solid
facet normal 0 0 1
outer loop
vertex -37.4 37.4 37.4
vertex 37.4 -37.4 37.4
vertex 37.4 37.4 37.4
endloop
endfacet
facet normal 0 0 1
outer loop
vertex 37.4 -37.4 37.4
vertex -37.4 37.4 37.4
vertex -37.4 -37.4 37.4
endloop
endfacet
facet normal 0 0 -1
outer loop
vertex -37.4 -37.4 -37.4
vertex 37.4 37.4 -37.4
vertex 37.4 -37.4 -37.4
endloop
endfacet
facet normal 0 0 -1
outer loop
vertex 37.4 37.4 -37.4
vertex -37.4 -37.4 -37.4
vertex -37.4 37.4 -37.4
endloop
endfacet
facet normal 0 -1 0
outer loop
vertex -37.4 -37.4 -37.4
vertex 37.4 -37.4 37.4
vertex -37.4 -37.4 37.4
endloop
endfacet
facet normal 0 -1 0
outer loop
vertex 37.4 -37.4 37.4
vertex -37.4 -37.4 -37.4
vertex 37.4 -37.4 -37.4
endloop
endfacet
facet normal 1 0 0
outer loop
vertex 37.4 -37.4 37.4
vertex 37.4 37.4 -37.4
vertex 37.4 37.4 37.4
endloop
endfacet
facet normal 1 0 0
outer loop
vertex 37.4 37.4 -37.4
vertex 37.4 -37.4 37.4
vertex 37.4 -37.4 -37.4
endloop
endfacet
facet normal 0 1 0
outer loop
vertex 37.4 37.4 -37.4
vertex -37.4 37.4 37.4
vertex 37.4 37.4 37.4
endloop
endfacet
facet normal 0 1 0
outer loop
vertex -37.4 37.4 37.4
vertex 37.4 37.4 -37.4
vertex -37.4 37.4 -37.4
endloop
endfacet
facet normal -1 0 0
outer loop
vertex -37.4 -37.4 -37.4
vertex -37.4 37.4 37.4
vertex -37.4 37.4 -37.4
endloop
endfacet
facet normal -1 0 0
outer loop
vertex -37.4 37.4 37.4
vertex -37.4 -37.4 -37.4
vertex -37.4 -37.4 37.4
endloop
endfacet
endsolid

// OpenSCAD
// file: def.scad
round_radius = 1.25;
sticker_margin = 3;
sticker_round_radius = 1;
total_size = 75;
base_size = (total_size - round_radius * 4) / (4 + sqrt(2));
cut1_dis = base_size * sqrt(2) / 2;
cut2_dis = base_size * (1 + sqrt(2) / 2);
cut2_corner_dis = base_size * (sqrt(2) / 2 * sqrt(3) + 1 / 3 * sqrt(3));
inf = total_size * 10;
// main file
include <def.scad>

cube([total_size - 0.2, total_size - 0.2, total_size - 0.2], center = true);
